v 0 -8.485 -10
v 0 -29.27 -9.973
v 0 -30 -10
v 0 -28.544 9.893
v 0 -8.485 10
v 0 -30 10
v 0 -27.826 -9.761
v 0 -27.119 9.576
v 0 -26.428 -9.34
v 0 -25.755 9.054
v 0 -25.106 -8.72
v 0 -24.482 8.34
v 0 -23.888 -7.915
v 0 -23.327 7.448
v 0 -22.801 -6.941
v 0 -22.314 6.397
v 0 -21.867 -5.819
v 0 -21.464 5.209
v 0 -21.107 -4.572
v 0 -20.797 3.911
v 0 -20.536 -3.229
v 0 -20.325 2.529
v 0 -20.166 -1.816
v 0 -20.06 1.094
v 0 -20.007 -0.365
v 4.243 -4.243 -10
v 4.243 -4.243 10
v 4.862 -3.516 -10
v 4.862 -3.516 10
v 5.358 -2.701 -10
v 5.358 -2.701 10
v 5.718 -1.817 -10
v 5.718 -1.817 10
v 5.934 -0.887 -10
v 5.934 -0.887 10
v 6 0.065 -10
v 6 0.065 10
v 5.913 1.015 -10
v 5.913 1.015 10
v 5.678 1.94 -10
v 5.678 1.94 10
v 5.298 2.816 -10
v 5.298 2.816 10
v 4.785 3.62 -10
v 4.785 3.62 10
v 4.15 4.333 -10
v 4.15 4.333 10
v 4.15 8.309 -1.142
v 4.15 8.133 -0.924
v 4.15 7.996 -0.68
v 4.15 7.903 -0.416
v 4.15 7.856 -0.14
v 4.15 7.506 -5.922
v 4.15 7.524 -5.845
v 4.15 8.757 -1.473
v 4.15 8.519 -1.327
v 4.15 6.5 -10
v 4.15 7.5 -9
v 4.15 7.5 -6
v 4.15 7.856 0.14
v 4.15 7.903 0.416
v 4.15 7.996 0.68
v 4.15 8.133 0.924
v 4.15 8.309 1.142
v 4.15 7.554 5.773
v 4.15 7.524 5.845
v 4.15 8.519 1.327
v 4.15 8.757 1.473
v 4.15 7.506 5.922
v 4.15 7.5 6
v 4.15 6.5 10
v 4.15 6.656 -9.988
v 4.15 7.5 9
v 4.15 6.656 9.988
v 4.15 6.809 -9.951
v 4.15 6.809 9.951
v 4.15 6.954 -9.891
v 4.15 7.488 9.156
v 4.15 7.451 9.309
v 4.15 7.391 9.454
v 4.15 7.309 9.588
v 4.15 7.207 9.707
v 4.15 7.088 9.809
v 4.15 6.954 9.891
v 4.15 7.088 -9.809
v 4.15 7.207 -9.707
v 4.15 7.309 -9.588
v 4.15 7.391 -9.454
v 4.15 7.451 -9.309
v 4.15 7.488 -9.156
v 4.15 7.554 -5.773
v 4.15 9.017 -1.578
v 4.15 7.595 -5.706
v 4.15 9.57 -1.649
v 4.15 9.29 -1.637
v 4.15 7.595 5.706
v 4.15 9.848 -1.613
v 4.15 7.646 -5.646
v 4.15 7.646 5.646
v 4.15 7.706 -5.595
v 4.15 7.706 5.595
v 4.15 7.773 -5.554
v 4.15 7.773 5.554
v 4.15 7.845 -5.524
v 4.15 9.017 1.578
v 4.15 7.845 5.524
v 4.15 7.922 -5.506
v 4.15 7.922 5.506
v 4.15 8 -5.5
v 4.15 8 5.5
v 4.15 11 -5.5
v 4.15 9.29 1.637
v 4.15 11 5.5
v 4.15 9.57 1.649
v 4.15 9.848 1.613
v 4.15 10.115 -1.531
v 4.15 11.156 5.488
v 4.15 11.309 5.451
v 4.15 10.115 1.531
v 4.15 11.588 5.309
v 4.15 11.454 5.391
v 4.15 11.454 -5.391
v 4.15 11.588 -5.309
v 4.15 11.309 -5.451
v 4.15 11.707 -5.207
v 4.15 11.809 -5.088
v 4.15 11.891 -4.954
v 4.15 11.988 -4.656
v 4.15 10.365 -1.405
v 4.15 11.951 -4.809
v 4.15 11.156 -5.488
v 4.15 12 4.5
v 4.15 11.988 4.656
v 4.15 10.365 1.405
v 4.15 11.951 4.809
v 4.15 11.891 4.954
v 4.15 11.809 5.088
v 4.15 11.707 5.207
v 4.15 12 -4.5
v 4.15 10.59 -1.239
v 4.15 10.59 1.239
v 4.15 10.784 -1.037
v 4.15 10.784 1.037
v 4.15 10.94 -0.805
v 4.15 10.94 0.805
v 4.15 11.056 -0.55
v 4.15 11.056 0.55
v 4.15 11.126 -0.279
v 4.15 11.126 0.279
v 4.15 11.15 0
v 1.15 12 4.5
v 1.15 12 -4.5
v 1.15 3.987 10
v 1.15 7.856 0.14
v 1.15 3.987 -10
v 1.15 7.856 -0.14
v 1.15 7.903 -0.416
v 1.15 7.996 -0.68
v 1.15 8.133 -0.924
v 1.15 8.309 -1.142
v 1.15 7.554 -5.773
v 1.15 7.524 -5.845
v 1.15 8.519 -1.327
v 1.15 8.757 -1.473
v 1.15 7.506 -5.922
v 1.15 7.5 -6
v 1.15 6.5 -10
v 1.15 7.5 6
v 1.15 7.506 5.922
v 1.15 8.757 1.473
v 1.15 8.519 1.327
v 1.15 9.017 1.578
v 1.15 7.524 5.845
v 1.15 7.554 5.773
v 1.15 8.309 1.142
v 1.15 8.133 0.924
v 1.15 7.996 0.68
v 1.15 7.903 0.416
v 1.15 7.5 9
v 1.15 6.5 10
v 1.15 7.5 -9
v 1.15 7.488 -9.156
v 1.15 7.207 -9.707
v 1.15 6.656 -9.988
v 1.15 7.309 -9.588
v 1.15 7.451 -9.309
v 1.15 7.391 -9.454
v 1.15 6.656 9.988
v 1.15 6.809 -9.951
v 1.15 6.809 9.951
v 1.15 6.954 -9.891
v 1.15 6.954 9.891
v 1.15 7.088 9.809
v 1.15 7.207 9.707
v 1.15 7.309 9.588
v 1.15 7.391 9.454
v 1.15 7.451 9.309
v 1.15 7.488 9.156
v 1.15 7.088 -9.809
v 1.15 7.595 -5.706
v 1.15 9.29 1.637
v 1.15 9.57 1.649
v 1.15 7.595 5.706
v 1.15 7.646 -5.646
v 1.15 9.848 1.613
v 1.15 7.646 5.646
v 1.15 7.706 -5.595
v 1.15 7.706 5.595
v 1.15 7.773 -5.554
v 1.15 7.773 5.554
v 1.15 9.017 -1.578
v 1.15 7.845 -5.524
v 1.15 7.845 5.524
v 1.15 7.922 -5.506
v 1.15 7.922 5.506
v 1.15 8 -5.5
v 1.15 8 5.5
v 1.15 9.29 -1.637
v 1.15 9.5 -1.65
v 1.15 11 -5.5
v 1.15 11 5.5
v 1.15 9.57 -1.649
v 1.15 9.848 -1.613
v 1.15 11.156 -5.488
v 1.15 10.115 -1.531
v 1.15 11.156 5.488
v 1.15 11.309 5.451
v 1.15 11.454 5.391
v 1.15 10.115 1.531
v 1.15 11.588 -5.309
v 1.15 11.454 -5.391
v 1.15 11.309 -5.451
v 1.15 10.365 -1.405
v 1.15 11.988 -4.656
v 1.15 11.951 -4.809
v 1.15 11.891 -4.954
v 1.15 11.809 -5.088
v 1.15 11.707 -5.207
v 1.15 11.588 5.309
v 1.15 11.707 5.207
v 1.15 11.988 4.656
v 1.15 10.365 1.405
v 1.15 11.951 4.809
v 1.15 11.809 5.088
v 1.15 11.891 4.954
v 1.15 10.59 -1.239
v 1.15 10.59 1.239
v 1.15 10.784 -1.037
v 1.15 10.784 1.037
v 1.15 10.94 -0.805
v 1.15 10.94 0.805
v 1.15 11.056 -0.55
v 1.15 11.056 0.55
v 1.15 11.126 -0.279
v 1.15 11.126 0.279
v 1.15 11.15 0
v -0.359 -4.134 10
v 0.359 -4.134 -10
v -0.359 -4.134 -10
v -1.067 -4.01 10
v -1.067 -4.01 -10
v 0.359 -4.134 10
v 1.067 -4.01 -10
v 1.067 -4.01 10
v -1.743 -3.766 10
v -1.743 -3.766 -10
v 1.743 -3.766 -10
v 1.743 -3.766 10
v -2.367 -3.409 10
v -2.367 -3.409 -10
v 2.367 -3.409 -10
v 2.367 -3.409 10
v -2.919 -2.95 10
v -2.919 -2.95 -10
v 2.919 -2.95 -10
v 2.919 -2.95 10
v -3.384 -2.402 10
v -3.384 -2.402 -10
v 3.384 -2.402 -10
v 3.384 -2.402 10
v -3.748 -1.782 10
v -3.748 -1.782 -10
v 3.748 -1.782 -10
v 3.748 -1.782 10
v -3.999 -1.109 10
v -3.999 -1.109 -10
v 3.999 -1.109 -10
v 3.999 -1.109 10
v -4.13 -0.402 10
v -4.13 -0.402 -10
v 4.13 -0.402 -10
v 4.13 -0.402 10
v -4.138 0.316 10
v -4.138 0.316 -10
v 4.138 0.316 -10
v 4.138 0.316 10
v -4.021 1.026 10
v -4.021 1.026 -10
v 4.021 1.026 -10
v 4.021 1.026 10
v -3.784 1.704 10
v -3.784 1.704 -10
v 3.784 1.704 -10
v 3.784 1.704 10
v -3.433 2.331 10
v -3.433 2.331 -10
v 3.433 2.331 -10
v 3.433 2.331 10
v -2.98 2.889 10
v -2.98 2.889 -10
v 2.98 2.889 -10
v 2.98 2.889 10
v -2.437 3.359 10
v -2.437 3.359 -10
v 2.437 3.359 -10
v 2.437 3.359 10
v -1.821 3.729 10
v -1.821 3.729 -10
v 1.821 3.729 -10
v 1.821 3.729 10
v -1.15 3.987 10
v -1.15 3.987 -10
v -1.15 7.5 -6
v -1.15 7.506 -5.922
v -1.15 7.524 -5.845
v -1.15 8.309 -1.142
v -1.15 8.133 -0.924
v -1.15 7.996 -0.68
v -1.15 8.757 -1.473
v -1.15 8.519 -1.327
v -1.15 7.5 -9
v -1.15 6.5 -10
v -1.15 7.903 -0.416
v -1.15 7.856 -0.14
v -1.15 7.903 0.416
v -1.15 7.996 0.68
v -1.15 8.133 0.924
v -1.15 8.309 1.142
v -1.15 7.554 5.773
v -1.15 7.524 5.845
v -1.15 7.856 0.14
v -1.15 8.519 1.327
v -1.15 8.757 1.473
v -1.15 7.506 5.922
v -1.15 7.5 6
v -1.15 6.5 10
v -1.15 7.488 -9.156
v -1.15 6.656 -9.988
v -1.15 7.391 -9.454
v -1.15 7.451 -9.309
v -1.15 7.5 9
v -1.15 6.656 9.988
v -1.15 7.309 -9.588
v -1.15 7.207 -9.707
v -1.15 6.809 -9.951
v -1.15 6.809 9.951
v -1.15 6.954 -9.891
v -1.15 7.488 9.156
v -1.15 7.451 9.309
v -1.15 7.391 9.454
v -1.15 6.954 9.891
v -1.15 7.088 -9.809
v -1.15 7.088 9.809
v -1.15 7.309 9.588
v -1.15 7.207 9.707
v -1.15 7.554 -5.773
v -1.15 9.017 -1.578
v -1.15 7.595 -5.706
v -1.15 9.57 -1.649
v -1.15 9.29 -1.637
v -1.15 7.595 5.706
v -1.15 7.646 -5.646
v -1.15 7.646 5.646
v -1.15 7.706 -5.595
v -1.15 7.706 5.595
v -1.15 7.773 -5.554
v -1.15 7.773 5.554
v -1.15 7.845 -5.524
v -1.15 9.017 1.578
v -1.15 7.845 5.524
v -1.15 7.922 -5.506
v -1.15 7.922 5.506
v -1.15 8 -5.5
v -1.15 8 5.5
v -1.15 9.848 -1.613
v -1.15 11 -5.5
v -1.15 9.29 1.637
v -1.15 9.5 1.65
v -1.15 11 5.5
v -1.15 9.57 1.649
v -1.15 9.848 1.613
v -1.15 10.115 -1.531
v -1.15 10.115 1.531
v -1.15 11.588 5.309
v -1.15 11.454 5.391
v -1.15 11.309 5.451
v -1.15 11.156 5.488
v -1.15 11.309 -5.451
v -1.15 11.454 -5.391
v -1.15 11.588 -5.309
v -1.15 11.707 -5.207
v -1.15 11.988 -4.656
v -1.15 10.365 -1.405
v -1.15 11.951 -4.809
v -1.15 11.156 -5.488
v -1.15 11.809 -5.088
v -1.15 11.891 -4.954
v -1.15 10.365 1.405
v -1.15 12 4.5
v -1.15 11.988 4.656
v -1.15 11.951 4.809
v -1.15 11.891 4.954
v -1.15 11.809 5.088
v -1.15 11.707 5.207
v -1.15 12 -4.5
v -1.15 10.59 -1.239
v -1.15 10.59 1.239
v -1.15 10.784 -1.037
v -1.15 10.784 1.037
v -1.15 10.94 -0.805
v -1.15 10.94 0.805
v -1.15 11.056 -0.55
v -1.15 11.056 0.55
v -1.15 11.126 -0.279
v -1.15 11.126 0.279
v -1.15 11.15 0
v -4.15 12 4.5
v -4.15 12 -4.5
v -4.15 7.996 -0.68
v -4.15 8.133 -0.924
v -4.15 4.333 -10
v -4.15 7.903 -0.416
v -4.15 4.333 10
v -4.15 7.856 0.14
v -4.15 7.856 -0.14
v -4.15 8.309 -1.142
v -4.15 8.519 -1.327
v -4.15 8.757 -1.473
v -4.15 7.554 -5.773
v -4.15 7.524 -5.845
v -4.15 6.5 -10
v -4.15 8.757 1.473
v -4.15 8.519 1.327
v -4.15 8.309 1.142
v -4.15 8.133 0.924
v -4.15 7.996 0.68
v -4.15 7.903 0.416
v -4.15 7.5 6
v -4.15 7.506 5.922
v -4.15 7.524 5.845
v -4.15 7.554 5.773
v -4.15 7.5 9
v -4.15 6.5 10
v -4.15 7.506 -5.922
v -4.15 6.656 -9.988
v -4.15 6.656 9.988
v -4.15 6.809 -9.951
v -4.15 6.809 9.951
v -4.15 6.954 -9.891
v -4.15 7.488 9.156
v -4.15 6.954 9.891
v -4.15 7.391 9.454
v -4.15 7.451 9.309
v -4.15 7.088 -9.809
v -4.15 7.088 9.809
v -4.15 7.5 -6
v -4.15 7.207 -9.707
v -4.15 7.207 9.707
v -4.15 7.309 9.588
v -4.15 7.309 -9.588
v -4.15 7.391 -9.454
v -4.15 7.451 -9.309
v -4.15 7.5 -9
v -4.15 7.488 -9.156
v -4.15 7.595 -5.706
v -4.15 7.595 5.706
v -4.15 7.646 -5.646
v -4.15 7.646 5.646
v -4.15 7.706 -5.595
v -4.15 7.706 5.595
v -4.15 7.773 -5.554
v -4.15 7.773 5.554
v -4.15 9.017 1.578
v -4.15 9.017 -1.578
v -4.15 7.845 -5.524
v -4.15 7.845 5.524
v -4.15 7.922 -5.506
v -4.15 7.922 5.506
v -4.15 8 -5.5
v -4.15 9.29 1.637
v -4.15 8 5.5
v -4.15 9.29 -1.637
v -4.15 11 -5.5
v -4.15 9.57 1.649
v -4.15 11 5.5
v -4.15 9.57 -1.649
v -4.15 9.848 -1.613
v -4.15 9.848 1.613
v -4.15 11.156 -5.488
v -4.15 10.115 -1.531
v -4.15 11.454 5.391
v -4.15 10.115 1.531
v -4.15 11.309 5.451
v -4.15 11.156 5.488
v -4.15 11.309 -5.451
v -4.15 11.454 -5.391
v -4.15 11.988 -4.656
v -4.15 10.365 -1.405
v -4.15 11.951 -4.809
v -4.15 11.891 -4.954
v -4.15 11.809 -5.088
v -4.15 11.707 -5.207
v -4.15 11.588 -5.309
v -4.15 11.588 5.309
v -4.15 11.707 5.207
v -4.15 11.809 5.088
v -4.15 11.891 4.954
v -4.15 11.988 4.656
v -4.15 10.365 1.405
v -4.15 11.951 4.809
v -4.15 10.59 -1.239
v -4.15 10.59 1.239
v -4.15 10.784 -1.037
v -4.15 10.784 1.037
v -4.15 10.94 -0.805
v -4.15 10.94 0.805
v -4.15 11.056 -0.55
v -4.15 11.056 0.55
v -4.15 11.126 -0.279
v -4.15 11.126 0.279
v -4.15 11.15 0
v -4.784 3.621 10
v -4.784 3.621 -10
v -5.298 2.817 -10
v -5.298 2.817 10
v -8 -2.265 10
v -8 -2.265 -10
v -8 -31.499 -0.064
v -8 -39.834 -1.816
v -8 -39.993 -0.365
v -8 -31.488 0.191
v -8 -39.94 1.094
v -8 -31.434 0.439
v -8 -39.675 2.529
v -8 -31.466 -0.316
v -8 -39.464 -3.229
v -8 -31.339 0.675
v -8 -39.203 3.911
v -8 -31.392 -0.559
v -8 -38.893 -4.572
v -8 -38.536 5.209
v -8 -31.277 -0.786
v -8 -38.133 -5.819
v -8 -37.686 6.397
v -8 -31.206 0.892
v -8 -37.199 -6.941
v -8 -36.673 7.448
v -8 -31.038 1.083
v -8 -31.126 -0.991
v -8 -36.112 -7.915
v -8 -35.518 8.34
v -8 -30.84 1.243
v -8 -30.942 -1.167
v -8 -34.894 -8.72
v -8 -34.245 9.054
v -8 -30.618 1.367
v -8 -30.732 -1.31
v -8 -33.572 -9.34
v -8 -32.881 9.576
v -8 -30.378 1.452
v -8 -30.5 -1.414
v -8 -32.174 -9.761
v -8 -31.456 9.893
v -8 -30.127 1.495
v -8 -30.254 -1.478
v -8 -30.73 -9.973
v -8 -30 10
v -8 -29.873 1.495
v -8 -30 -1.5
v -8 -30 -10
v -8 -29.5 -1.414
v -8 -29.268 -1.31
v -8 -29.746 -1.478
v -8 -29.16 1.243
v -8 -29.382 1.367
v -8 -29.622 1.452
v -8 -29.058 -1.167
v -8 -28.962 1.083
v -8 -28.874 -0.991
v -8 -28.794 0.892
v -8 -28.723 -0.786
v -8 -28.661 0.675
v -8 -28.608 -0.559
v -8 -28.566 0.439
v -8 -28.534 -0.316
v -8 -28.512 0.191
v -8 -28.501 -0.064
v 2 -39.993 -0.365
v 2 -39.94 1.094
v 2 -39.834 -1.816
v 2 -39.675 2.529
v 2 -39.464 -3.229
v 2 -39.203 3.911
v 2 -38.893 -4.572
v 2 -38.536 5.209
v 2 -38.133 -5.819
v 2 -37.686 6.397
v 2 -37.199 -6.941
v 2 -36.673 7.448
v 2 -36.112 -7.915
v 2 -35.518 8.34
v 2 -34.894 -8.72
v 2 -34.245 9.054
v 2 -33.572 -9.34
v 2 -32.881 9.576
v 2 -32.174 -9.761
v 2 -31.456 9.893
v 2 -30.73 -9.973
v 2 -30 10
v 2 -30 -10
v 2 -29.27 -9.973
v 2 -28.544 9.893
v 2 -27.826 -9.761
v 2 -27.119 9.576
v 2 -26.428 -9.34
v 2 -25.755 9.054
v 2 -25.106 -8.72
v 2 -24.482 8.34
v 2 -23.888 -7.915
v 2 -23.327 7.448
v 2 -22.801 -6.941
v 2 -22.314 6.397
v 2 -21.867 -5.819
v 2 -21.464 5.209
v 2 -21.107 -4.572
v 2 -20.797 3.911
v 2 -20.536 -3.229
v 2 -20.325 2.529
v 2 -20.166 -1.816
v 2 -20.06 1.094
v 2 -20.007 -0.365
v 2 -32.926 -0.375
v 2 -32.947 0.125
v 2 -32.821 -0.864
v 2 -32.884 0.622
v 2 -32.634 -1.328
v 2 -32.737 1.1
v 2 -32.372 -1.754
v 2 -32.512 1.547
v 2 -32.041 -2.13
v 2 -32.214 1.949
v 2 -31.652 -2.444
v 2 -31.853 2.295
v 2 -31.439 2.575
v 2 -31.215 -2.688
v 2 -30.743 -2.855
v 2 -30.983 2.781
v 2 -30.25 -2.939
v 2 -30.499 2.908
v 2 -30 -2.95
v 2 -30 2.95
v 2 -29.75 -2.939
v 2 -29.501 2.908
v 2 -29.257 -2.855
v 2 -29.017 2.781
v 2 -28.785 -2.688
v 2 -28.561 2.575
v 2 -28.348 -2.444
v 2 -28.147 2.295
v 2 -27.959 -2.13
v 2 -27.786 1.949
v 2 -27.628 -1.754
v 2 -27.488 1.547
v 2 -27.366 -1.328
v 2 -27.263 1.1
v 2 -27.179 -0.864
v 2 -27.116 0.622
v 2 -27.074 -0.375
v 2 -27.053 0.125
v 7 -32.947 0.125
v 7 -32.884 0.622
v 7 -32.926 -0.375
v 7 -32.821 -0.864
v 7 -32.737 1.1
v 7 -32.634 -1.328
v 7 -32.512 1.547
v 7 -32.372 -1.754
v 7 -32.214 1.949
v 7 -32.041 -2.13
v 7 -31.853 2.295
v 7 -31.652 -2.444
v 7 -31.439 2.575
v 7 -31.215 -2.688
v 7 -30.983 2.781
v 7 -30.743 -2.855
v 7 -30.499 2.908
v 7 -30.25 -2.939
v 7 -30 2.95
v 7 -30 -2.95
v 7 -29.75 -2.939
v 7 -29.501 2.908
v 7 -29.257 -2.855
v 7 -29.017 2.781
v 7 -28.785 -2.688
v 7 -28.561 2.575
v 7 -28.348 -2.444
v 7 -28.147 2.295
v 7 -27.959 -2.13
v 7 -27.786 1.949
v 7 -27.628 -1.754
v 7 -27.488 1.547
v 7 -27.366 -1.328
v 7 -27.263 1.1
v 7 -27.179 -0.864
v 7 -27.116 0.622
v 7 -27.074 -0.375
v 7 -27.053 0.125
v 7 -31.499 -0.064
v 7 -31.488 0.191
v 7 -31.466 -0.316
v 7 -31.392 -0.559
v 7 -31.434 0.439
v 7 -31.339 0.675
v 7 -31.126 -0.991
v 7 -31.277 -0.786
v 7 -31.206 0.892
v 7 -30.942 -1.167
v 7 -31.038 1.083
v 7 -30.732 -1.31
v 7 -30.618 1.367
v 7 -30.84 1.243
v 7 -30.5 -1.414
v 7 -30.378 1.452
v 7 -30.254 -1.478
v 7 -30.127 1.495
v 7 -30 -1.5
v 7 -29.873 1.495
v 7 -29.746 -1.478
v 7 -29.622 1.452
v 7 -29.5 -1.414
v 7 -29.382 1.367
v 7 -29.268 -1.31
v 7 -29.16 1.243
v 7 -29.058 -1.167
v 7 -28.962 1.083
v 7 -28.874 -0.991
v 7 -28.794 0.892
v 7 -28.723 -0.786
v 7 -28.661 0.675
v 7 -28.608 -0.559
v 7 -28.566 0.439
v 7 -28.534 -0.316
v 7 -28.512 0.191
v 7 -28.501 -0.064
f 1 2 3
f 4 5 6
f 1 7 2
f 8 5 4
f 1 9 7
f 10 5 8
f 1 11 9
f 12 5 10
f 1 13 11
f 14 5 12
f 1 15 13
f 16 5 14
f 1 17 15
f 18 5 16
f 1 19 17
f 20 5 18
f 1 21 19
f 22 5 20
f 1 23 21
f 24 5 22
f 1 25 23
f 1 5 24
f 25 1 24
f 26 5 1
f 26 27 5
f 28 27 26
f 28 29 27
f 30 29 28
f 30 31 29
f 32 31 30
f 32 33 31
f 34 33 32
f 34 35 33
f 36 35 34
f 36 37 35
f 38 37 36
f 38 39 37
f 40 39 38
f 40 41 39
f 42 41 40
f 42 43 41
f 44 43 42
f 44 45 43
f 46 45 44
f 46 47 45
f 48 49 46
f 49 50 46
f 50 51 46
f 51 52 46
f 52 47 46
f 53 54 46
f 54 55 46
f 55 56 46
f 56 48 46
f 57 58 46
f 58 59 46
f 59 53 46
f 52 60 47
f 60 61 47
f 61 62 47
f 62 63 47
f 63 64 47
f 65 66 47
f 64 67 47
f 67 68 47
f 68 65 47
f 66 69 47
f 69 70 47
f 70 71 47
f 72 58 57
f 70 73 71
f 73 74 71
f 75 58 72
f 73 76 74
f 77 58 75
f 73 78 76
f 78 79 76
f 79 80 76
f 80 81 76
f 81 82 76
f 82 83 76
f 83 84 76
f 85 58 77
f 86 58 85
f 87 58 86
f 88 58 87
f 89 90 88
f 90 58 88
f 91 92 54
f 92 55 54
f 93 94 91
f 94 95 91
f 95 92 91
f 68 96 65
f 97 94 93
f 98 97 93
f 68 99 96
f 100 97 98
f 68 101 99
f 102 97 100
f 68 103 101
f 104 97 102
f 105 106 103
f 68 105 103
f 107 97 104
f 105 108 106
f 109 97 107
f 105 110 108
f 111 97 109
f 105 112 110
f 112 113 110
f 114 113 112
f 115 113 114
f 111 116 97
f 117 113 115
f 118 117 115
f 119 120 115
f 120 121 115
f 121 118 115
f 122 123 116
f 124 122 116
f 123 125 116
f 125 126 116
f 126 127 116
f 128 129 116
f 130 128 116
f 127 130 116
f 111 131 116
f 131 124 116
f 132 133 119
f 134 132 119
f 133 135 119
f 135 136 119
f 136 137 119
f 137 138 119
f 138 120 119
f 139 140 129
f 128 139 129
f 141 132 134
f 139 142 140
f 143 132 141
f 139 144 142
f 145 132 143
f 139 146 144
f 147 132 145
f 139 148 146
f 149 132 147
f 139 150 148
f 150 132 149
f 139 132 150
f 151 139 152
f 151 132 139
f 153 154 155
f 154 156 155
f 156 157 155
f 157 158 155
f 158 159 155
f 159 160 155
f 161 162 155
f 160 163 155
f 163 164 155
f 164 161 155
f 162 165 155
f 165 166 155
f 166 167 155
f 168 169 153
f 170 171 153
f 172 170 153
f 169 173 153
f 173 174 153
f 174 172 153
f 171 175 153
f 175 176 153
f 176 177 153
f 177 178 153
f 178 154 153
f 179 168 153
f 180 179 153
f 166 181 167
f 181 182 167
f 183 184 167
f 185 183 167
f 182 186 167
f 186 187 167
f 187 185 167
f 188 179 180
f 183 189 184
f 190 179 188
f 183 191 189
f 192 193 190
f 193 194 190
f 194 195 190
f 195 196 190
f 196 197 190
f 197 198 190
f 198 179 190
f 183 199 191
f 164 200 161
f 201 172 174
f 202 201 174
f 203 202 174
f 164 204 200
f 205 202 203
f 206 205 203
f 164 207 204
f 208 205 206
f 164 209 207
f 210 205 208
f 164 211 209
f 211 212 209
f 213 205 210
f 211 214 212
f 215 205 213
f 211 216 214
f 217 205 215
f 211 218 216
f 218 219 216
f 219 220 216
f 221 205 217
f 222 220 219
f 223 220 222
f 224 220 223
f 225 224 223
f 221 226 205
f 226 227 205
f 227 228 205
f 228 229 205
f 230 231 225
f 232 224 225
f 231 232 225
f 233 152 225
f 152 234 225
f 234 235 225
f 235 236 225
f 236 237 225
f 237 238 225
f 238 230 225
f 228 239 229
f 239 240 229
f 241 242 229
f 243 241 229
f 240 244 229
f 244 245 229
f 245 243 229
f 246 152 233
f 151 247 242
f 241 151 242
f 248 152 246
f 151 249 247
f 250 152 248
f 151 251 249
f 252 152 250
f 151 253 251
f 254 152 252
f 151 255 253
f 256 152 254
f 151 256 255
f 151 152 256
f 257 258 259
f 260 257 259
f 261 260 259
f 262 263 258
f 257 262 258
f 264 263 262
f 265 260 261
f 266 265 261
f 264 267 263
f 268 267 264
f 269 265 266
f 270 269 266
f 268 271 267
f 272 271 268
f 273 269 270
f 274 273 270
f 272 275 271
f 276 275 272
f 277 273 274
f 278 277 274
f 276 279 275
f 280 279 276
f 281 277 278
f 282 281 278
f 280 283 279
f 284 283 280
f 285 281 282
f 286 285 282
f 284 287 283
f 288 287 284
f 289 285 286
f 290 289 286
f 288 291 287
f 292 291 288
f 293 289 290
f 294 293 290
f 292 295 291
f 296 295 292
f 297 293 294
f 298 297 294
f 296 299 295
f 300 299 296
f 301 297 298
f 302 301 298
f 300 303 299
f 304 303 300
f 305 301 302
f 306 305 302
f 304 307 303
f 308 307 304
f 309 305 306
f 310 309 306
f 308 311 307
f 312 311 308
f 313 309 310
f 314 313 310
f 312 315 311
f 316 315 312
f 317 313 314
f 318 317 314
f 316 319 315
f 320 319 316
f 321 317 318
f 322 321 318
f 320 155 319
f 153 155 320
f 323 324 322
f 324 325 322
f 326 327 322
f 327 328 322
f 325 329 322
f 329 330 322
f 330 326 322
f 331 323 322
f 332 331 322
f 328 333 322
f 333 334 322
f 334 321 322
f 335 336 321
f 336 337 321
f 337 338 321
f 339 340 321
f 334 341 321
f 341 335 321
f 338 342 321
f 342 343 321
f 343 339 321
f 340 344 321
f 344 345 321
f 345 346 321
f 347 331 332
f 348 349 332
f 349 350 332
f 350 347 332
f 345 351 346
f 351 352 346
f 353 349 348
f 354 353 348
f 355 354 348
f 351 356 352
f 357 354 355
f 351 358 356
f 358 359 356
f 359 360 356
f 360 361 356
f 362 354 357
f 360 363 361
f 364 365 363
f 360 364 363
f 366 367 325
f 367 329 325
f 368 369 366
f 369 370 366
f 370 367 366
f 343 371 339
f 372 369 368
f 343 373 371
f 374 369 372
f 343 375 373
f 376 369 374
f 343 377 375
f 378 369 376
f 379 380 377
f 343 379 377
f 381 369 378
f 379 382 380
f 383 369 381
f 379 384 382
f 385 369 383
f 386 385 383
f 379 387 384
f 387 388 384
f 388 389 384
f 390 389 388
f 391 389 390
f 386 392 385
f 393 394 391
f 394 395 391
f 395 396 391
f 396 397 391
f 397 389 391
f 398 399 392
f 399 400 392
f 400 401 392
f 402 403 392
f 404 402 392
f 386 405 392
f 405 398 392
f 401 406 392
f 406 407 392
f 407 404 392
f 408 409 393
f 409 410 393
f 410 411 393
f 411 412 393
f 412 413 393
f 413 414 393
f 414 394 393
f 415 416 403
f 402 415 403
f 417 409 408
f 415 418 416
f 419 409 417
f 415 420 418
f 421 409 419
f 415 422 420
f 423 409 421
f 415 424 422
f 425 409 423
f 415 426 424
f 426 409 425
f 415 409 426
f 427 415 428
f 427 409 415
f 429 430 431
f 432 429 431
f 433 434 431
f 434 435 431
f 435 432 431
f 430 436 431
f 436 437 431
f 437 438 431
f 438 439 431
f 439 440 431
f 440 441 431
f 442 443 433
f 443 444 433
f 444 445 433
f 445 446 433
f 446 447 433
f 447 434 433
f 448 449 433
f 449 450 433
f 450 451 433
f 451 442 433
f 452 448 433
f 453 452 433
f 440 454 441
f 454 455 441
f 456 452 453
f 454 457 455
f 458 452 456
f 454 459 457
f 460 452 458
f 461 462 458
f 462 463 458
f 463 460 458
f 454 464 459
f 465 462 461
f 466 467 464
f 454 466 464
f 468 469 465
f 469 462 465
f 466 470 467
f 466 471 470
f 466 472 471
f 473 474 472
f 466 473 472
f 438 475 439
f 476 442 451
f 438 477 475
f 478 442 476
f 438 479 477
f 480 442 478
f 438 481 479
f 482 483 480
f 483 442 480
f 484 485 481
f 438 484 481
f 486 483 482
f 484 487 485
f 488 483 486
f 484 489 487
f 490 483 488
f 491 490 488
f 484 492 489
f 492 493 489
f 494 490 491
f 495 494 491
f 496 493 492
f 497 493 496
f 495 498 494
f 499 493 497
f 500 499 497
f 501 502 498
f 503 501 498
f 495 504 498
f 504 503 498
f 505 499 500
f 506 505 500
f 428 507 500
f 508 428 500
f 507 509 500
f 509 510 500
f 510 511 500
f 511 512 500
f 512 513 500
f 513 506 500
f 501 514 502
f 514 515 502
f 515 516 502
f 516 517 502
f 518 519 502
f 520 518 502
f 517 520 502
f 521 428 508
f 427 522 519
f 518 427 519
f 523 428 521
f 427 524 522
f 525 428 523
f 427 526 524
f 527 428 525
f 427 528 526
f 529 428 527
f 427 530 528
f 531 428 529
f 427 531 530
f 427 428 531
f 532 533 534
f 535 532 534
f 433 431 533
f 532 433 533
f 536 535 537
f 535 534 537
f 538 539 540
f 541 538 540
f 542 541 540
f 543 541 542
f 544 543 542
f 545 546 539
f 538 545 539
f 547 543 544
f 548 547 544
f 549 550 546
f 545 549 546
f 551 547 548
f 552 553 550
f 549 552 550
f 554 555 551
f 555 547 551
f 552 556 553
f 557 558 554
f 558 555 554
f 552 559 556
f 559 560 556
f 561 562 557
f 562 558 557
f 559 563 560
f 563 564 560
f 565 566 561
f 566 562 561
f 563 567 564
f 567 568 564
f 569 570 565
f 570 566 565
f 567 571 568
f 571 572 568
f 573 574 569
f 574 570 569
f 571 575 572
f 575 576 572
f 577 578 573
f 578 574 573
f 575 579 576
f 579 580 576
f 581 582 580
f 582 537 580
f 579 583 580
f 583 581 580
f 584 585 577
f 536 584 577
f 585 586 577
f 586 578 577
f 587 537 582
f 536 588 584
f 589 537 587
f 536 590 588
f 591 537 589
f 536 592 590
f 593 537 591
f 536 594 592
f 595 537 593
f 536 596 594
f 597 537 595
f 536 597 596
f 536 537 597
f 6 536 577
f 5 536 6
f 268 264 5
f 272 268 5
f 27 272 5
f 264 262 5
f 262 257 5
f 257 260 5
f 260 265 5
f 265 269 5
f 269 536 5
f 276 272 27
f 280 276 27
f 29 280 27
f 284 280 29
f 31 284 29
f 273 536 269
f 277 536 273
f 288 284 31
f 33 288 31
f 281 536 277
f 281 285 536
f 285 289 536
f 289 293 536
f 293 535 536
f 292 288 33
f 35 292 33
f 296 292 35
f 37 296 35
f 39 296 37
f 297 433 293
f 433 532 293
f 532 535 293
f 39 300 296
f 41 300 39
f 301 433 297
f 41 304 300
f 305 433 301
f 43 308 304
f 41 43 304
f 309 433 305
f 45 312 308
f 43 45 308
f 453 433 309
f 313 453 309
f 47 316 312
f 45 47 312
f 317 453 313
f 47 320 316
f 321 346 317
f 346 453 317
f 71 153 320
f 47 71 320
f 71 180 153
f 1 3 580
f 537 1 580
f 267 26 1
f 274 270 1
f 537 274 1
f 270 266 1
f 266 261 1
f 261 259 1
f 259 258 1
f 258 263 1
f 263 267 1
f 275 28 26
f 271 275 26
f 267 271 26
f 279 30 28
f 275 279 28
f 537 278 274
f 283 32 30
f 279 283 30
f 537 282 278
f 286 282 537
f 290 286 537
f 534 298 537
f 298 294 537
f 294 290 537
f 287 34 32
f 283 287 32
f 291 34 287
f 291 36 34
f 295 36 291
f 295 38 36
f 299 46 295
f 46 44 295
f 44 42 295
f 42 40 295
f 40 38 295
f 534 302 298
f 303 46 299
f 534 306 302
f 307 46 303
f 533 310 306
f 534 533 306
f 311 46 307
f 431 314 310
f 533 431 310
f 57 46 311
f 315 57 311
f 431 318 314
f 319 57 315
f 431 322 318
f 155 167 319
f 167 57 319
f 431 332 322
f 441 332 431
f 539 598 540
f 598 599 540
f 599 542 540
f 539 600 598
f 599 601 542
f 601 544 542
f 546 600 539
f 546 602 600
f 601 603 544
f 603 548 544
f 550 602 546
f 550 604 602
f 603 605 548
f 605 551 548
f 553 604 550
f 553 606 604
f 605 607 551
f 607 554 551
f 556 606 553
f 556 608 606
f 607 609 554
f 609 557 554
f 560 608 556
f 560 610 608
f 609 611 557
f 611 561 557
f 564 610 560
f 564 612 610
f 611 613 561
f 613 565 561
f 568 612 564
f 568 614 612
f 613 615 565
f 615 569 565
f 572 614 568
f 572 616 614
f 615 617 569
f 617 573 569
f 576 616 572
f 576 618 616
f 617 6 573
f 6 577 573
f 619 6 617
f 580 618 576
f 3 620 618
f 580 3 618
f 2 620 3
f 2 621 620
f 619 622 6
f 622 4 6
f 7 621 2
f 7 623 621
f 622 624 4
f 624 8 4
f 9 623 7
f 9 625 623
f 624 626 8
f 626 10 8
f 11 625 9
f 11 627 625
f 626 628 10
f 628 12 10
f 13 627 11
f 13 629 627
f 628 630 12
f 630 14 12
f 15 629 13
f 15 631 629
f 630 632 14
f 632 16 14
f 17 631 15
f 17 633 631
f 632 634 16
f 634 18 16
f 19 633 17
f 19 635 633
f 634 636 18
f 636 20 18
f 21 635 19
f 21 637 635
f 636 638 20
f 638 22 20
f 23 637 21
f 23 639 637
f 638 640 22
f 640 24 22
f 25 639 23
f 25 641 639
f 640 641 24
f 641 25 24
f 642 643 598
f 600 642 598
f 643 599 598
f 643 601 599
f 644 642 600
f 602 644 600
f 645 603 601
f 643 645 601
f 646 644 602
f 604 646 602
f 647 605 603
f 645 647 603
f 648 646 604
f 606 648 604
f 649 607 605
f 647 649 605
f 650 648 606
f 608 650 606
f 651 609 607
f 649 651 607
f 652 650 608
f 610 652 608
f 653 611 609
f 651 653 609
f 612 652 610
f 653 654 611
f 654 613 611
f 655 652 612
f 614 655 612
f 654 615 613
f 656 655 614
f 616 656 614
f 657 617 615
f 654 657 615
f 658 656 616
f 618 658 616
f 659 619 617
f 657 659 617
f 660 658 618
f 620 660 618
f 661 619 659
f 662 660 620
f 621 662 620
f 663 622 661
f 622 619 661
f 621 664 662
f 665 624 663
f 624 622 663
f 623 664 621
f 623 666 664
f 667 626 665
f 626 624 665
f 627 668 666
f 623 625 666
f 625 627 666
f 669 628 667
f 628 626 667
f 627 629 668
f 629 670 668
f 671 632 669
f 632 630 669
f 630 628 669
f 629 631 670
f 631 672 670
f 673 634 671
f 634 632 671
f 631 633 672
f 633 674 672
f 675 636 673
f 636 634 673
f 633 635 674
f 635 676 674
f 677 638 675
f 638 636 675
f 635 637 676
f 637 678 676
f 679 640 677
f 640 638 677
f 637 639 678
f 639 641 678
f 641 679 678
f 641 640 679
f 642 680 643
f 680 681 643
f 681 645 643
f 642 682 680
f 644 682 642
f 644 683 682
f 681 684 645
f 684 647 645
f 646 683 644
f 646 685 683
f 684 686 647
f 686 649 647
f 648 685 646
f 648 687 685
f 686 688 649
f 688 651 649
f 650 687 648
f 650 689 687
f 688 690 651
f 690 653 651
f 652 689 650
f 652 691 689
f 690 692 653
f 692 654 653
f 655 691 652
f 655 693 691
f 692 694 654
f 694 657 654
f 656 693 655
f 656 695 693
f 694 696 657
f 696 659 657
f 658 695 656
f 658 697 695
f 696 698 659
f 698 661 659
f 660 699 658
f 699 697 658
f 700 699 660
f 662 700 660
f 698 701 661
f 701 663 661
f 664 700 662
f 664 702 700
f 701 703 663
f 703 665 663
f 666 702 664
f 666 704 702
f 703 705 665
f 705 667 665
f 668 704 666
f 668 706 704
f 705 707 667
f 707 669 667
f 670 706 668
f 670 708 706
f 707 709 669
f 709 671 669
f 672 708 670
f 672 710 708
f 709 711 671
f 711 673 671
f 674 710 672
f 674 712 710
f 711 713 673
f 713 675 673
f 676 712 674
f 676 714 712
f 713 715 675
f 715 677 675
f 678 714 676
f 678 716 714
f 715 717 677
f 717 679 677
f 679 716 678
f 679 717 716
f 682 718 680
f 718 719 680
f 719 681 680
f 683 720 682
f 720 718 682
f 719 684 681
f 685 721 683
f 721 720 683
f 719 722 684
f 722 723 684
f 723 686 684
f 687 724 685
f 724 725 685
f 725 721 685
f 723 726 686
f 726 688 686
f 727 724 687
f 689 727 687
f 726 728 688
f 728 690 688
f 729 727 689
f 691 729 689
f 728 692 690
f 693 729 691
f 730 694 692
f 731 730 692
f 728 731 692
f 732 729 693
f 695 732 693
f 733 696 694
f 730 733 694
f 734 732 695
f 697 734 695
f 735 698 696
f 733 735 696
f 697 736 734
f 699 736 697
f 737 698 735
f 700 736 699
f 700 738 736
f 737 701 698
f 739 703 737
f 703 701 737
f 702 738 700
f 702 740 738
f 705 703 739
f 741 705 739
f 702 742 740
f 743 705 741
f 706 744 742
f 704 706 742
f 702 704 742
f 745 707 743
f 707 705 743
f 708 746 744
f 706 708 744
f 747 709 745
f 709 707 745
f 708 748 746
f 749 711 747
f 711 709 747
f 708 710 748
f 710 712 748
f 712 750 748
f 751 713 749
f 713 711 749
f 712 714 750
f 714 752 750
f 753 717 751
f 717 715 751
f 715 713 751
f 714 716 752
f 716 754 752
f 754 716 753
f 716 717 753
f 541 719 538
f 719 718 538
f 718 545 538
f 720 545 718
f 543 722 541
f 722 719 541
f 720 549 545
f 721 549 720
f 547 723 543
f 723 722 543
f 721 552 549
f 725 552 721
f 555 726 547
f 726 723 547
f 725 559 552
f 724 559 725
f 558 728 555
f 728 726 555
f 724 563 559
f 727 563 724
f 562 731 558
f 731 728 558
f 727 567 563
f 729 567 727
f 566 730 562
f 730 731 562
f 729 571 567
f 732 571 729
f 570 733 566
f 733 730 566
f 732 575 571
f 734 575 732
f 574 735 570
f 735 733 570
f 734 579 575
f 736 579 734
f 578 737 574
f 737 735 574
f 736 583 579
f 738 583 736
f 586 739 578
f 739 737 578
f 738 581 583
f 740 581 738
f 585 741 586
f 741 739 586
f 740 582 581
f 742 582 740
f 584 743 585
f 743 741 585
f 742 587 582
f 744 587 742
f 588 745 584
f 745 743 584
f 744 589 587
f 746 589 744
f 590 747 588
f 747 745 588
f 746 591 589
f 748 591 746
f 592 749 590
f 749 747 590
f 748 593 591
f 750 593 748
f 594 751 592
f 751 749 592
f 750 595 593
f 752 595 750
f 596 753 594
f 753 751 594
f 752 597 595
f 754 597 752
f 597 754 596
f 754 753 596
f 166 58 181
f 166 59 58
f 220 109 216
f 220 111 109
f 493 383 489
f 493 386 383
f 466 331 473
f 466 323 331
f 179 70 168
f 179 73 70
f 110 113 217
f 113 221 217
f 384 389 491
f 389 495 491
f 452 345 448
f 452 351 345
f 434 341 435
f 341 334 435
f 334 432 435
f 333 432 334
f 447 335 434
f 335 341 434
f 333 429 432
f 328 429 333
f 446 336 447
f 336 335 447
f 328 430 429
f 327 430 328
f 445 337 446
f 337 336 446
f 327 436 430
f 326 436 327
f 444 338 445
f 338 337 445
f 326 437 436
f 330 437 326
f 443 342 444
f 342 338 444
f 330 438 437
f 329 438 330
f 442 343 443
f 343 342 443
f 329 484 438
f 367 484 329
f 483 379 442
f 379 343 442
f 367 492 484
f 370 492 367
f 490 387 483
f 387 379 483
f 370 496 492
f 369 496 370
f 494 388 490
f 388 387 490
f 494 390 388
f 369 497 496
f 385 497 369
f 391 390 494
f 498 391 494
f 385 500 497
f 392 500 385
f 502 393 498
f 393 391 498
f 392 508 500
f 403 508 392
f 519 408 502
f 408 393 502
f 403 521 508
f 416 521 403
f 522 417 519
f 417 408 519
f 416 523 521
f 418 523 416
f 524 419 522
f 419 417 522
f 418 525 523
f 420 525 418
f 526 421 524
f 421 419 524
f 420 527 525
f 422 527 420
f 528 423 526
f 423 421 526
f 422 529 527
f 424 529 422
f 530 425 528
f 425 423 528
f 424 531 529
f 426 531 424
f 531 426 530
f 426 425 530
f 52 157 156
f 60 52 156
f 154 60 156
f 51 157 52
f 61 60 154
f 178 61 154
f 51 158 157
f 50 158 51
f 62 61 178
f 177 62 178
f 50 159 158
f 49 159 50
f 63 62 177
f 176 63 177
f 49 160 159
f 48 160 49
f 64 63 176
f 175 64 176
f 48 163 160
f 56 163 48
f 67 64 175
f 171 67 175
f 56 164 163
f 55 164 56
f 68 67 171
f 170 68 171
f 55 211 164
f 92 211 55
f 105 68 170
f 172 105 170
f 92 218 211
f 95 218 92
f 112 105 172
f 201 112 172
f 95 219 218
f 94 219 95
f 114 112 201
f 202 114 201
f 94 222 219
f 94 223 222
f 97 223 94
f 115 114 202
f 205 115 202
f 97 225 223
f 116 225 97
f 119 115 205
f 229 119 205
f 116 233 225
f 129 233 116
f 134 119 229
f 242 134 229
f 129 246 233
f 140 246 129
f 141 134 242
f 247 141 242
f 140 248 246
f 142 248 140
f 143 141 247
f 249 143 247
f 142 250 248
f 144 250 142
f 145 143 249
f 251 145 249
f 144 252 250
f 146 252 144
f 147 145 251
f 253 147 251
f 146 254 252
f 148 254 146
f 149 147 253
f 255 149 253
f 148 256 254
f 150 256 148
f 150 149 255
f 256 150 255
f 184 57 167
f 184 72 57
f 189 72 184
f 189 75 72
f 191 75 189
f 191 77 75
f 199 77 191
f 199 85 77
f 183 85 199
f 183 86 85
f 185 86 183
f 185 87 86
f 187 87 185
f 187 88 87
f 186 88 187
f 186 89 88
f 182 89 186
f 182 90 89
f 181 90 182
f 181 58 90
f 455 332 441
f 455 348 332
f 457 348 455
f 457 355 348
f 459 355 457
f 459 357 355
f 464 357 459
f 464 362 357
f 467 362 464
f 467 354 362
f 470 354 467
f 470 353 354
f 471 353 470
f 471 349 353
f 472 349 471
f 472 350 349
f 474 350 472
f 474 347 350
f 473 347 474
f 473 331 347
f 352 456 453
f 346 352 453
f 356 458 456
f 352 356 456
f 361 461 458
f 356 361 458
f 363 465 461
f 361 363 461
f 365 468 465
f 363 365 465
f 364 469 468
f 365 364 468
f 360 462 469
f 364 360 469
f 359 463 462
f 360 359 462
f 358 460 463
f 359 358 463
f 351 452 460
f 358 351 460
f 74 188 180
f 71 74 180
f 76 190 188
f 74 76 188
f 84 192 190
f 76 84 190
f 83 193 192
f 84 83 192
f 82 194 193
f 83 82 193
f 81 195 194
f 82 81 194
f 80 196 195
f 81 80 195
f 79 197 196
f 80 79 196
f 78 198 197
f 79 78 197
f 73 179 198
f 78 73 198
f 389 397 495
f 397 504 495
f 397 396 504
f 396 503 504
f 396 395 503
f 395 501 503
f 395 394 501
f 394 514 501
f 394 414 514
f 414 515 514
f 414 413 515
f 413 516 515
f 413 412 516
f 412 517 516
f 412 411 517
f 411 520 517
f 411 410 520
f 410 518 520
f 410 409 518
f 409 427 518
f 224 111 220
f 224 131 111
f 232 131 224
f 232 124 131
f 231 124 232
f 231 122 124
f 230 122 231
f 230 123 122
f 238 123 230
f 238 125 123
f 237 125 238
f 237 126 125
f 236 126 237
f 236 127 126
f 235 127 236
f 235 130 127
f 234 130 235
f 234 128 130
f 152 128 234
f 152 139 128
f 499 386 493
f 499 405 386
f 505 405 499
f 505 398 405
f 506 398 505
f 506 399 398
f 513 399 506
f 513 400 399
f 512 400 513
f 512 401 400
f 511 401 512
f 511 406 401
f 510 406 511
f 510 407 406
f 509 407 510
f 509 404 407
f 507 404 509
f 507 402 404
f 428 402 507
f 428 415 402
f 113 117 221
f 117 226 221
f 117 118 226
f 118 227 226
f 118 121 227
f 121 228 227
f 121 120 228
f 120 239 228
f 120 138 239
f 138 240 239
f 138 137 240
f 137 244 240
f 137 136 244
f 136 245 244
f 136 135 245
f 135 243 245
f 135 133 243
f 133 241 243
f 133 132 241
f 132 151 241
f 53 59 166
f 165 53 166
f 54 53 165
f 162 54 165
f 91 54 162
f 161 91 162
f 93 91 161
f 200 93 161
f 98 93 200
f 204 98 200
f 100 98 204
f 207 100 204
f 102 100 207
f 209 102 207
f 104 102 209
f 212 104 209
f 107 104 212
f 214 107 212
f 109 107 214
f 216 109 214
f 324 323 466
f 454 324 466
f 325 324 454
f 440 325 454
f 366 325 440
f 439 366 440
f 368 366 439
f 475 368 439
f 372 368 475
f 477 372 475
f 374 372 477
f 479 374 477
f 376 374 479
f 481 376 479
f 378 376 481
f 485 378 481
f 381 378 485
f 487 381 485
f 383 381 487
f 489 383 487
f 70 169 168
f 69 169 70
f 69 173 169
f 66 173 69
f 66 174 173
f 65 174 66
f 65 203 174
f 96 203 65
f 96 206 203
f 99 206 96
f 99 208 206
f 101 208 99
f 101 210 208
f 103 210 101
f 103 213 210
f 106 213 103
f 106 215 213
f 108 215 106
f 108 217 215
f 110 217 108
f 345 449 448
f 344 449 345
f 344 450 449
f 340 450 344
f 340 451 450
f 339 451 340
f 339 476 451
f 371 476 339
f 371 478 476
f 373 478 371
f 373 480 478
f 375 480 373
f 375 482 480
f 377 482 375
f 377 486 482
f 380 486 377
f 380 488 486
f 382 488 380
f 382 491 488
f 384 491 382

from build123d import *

# Parameters (mm, degrees)
EXTRUDE_1_DEPTH             = 10
EXTRUDE_2_REACH             = 34.619
SKETCH_2_R                  = 10
EXTRUDE_2_DIRECTION_2_DEPTH = 2
SKETCH_4_R                  = 2.95
EXTRUDE_3_DEPTH             = 5
SKETCH_5_R                  = 1.5
CUT_EXTRUDE_1_DEPTH         = 44.874821937
SKETCH_6_R                  = 1.65
SKETCH_6_W                  = 14.704506527
SKETCH_6_H                  = 8.520368268
CUT_EXTRUDE_2_DEPTH         = 43.983979574
FILLET_1_R                  = 1
FILLET_2_R                  = 0.5


with BuildPart() as part:
    # 草图1 → 凸台-拉伸1 (new, symmetric)
    with BuildSketch(Plane.XY):
        with BuildLine():
            Line((-1.15, 3.987480407), (-1.15, 12))
            Line((-1.15, 12), (-4.15, 12))
            Line((-4.15, 12), (-4.15, 4.333301282))
            ThreePointArc((-4.15, 4.333301282), (-4.784308974, 3.620826928), (-5.297685557, 2.816829377))
            Line((-5.297685557, 2.816829377), (-8, -2.265484914))
            Line((-8, -2.265484914), (-8, -30))
            Line((-8, -30), (0, -30))
            Line((0, -30), (0, -8.485281374))
            Line((0, -8.485281374), (4.242640687, -4.242640687))
            ThreePointArc((4.242640687, -4.242640687), (5.999649956, 0.064810571), (4.15, 4.333301282))
            Line((4.15, 4.333301282), (4.15, 12))
            Line((4.15, 12), (1.15, 12))
            Line((1.15, 12), (1.15, 3.987480407))
            ThreePointArc((1.15, 3.987480407), (0, -4.15), (-1.15, 3.987480407))
        make_face()
    extrude(amount=EXTRUDE_1_DEPTH, both=True)

    # 凸台-拉伸2: up to this face of the body (flat: up to its plane)
    extrude_2_end = Plane(part.part.faces().sort_by_distance((-8, -16.132742457, 0))[0])
    # 草图2 → 凸台-拉伸2 (add, up to the picked face)
    with BuildSketch(Plane(origin=(0, 0, 0), x_dir=(0, 0, -1), z_dir=(1, 0, 0)), mode=Mode.PRIVATE) as extrude_2_sk1:
        with Locations((0, -30)):
            Circle(SKETCH_2_R)
    extrude_2_tool1 = split(extrude(extrude_2_sk1.sketch, amount=-EXTRUDE_2_REACH, mode=Mode.PRIVATE), bisect_by=extrude_2_end, keep=Keep.BOTH, mode=Mode.PRIVATE)
    add(extrude_2_tool1.solids().sort_by(Axis((0, -30, 0), (-1, 0, 0)))[0])

    # 草图2 → 凸台-拉伸2 direction 2 (add)
    with BuildSketch(Plane(origin=(0, 0, 0), x_dir=(0, 0, -1), z_dir=(1, 0, 0))):
        with Locations((0, -30)):
            Circle(SKETCH_2_R)
    extrude(amount=EXTRUDE_2_DIRECTION_2_DEPTH)

    # 草图4 → 凸台-拉伸3 (add)
    with BuildSketch(Plane(origin=(2, 0, 0), x_dir=(0, 0, -1), z_dir=(1, 0, 0))):
        with Locations((0, -30)):
            Circle(SKETCH_4_R)
    extrude(amount=EXTRUDE_3_DEPTH)

    # 草图5 → 切除-拉伸1 (cut, through all)
    with BuildSketch(Plane(origin=(7, 0, 0), x_dir=(0, 0, -1), z_dir=(1, 0, 0))):
        with Locations((0, -30)):
            Circle(SKETCH_5_R)
    extrude(amount=-CUT_EXTRUDE_1_DEPTH, mode=Mode.SUBTRACT)

    # 草图6 → 切除-拉伸2 (cut, through all)
    with BuildSketch(Plane(origin=(4.15, 0, 0), x_dir=(0, 0, -1), z_dir=(1, 0, 0))):
        with Locations(Location((0, 9.5, 0), (0, 0, 90))):
            Circle(SKETCH_6_R)
        with Locations((-12.852253263, 11.760184134)):
            Rectangle(SKETCH_6_W, SKETCH_6_H)
        with Locations((12.852253263, 11.760184134)):
            Rectangle(SKETCH_6_W, SKETCH_6_H)
    extrude(amount=-CUT_EXTRUDE_2_DEPTH, mode=Mode.SUBTRACT)

    # 圆角1
    fillet_1_edges = [part.edges().sort_by_distance(p)[0] for p in [
        (2.65, 7.5, -10),
        (-2.65, 7.5, -10),
        (2.65, 7.5, 10),
        (-2.65, 7.5, 10),
        (2.65, 12, 5.5),
        (-2.65, 12, 5.5),
        (2.65, 12, -5.5),
        (-2.65, 12, -5.5),
    ]]
    fillet(fillet_1_edges, radius=FILLET_1_R)

    # 圆角2
    fillet_2_edges = [part.edges().sort_by_distance(p)[0] for p in [
        (-2.65, 7.5, 5.5),
        (2.65, 7.5, 5.5),
        (2.65, 7.5, -5.5),
        (-2.65, 7.5, -5.5),
    ]]
    fillet(fillet_2_edges, radius=FILLET_2_R)


solid = part.part
